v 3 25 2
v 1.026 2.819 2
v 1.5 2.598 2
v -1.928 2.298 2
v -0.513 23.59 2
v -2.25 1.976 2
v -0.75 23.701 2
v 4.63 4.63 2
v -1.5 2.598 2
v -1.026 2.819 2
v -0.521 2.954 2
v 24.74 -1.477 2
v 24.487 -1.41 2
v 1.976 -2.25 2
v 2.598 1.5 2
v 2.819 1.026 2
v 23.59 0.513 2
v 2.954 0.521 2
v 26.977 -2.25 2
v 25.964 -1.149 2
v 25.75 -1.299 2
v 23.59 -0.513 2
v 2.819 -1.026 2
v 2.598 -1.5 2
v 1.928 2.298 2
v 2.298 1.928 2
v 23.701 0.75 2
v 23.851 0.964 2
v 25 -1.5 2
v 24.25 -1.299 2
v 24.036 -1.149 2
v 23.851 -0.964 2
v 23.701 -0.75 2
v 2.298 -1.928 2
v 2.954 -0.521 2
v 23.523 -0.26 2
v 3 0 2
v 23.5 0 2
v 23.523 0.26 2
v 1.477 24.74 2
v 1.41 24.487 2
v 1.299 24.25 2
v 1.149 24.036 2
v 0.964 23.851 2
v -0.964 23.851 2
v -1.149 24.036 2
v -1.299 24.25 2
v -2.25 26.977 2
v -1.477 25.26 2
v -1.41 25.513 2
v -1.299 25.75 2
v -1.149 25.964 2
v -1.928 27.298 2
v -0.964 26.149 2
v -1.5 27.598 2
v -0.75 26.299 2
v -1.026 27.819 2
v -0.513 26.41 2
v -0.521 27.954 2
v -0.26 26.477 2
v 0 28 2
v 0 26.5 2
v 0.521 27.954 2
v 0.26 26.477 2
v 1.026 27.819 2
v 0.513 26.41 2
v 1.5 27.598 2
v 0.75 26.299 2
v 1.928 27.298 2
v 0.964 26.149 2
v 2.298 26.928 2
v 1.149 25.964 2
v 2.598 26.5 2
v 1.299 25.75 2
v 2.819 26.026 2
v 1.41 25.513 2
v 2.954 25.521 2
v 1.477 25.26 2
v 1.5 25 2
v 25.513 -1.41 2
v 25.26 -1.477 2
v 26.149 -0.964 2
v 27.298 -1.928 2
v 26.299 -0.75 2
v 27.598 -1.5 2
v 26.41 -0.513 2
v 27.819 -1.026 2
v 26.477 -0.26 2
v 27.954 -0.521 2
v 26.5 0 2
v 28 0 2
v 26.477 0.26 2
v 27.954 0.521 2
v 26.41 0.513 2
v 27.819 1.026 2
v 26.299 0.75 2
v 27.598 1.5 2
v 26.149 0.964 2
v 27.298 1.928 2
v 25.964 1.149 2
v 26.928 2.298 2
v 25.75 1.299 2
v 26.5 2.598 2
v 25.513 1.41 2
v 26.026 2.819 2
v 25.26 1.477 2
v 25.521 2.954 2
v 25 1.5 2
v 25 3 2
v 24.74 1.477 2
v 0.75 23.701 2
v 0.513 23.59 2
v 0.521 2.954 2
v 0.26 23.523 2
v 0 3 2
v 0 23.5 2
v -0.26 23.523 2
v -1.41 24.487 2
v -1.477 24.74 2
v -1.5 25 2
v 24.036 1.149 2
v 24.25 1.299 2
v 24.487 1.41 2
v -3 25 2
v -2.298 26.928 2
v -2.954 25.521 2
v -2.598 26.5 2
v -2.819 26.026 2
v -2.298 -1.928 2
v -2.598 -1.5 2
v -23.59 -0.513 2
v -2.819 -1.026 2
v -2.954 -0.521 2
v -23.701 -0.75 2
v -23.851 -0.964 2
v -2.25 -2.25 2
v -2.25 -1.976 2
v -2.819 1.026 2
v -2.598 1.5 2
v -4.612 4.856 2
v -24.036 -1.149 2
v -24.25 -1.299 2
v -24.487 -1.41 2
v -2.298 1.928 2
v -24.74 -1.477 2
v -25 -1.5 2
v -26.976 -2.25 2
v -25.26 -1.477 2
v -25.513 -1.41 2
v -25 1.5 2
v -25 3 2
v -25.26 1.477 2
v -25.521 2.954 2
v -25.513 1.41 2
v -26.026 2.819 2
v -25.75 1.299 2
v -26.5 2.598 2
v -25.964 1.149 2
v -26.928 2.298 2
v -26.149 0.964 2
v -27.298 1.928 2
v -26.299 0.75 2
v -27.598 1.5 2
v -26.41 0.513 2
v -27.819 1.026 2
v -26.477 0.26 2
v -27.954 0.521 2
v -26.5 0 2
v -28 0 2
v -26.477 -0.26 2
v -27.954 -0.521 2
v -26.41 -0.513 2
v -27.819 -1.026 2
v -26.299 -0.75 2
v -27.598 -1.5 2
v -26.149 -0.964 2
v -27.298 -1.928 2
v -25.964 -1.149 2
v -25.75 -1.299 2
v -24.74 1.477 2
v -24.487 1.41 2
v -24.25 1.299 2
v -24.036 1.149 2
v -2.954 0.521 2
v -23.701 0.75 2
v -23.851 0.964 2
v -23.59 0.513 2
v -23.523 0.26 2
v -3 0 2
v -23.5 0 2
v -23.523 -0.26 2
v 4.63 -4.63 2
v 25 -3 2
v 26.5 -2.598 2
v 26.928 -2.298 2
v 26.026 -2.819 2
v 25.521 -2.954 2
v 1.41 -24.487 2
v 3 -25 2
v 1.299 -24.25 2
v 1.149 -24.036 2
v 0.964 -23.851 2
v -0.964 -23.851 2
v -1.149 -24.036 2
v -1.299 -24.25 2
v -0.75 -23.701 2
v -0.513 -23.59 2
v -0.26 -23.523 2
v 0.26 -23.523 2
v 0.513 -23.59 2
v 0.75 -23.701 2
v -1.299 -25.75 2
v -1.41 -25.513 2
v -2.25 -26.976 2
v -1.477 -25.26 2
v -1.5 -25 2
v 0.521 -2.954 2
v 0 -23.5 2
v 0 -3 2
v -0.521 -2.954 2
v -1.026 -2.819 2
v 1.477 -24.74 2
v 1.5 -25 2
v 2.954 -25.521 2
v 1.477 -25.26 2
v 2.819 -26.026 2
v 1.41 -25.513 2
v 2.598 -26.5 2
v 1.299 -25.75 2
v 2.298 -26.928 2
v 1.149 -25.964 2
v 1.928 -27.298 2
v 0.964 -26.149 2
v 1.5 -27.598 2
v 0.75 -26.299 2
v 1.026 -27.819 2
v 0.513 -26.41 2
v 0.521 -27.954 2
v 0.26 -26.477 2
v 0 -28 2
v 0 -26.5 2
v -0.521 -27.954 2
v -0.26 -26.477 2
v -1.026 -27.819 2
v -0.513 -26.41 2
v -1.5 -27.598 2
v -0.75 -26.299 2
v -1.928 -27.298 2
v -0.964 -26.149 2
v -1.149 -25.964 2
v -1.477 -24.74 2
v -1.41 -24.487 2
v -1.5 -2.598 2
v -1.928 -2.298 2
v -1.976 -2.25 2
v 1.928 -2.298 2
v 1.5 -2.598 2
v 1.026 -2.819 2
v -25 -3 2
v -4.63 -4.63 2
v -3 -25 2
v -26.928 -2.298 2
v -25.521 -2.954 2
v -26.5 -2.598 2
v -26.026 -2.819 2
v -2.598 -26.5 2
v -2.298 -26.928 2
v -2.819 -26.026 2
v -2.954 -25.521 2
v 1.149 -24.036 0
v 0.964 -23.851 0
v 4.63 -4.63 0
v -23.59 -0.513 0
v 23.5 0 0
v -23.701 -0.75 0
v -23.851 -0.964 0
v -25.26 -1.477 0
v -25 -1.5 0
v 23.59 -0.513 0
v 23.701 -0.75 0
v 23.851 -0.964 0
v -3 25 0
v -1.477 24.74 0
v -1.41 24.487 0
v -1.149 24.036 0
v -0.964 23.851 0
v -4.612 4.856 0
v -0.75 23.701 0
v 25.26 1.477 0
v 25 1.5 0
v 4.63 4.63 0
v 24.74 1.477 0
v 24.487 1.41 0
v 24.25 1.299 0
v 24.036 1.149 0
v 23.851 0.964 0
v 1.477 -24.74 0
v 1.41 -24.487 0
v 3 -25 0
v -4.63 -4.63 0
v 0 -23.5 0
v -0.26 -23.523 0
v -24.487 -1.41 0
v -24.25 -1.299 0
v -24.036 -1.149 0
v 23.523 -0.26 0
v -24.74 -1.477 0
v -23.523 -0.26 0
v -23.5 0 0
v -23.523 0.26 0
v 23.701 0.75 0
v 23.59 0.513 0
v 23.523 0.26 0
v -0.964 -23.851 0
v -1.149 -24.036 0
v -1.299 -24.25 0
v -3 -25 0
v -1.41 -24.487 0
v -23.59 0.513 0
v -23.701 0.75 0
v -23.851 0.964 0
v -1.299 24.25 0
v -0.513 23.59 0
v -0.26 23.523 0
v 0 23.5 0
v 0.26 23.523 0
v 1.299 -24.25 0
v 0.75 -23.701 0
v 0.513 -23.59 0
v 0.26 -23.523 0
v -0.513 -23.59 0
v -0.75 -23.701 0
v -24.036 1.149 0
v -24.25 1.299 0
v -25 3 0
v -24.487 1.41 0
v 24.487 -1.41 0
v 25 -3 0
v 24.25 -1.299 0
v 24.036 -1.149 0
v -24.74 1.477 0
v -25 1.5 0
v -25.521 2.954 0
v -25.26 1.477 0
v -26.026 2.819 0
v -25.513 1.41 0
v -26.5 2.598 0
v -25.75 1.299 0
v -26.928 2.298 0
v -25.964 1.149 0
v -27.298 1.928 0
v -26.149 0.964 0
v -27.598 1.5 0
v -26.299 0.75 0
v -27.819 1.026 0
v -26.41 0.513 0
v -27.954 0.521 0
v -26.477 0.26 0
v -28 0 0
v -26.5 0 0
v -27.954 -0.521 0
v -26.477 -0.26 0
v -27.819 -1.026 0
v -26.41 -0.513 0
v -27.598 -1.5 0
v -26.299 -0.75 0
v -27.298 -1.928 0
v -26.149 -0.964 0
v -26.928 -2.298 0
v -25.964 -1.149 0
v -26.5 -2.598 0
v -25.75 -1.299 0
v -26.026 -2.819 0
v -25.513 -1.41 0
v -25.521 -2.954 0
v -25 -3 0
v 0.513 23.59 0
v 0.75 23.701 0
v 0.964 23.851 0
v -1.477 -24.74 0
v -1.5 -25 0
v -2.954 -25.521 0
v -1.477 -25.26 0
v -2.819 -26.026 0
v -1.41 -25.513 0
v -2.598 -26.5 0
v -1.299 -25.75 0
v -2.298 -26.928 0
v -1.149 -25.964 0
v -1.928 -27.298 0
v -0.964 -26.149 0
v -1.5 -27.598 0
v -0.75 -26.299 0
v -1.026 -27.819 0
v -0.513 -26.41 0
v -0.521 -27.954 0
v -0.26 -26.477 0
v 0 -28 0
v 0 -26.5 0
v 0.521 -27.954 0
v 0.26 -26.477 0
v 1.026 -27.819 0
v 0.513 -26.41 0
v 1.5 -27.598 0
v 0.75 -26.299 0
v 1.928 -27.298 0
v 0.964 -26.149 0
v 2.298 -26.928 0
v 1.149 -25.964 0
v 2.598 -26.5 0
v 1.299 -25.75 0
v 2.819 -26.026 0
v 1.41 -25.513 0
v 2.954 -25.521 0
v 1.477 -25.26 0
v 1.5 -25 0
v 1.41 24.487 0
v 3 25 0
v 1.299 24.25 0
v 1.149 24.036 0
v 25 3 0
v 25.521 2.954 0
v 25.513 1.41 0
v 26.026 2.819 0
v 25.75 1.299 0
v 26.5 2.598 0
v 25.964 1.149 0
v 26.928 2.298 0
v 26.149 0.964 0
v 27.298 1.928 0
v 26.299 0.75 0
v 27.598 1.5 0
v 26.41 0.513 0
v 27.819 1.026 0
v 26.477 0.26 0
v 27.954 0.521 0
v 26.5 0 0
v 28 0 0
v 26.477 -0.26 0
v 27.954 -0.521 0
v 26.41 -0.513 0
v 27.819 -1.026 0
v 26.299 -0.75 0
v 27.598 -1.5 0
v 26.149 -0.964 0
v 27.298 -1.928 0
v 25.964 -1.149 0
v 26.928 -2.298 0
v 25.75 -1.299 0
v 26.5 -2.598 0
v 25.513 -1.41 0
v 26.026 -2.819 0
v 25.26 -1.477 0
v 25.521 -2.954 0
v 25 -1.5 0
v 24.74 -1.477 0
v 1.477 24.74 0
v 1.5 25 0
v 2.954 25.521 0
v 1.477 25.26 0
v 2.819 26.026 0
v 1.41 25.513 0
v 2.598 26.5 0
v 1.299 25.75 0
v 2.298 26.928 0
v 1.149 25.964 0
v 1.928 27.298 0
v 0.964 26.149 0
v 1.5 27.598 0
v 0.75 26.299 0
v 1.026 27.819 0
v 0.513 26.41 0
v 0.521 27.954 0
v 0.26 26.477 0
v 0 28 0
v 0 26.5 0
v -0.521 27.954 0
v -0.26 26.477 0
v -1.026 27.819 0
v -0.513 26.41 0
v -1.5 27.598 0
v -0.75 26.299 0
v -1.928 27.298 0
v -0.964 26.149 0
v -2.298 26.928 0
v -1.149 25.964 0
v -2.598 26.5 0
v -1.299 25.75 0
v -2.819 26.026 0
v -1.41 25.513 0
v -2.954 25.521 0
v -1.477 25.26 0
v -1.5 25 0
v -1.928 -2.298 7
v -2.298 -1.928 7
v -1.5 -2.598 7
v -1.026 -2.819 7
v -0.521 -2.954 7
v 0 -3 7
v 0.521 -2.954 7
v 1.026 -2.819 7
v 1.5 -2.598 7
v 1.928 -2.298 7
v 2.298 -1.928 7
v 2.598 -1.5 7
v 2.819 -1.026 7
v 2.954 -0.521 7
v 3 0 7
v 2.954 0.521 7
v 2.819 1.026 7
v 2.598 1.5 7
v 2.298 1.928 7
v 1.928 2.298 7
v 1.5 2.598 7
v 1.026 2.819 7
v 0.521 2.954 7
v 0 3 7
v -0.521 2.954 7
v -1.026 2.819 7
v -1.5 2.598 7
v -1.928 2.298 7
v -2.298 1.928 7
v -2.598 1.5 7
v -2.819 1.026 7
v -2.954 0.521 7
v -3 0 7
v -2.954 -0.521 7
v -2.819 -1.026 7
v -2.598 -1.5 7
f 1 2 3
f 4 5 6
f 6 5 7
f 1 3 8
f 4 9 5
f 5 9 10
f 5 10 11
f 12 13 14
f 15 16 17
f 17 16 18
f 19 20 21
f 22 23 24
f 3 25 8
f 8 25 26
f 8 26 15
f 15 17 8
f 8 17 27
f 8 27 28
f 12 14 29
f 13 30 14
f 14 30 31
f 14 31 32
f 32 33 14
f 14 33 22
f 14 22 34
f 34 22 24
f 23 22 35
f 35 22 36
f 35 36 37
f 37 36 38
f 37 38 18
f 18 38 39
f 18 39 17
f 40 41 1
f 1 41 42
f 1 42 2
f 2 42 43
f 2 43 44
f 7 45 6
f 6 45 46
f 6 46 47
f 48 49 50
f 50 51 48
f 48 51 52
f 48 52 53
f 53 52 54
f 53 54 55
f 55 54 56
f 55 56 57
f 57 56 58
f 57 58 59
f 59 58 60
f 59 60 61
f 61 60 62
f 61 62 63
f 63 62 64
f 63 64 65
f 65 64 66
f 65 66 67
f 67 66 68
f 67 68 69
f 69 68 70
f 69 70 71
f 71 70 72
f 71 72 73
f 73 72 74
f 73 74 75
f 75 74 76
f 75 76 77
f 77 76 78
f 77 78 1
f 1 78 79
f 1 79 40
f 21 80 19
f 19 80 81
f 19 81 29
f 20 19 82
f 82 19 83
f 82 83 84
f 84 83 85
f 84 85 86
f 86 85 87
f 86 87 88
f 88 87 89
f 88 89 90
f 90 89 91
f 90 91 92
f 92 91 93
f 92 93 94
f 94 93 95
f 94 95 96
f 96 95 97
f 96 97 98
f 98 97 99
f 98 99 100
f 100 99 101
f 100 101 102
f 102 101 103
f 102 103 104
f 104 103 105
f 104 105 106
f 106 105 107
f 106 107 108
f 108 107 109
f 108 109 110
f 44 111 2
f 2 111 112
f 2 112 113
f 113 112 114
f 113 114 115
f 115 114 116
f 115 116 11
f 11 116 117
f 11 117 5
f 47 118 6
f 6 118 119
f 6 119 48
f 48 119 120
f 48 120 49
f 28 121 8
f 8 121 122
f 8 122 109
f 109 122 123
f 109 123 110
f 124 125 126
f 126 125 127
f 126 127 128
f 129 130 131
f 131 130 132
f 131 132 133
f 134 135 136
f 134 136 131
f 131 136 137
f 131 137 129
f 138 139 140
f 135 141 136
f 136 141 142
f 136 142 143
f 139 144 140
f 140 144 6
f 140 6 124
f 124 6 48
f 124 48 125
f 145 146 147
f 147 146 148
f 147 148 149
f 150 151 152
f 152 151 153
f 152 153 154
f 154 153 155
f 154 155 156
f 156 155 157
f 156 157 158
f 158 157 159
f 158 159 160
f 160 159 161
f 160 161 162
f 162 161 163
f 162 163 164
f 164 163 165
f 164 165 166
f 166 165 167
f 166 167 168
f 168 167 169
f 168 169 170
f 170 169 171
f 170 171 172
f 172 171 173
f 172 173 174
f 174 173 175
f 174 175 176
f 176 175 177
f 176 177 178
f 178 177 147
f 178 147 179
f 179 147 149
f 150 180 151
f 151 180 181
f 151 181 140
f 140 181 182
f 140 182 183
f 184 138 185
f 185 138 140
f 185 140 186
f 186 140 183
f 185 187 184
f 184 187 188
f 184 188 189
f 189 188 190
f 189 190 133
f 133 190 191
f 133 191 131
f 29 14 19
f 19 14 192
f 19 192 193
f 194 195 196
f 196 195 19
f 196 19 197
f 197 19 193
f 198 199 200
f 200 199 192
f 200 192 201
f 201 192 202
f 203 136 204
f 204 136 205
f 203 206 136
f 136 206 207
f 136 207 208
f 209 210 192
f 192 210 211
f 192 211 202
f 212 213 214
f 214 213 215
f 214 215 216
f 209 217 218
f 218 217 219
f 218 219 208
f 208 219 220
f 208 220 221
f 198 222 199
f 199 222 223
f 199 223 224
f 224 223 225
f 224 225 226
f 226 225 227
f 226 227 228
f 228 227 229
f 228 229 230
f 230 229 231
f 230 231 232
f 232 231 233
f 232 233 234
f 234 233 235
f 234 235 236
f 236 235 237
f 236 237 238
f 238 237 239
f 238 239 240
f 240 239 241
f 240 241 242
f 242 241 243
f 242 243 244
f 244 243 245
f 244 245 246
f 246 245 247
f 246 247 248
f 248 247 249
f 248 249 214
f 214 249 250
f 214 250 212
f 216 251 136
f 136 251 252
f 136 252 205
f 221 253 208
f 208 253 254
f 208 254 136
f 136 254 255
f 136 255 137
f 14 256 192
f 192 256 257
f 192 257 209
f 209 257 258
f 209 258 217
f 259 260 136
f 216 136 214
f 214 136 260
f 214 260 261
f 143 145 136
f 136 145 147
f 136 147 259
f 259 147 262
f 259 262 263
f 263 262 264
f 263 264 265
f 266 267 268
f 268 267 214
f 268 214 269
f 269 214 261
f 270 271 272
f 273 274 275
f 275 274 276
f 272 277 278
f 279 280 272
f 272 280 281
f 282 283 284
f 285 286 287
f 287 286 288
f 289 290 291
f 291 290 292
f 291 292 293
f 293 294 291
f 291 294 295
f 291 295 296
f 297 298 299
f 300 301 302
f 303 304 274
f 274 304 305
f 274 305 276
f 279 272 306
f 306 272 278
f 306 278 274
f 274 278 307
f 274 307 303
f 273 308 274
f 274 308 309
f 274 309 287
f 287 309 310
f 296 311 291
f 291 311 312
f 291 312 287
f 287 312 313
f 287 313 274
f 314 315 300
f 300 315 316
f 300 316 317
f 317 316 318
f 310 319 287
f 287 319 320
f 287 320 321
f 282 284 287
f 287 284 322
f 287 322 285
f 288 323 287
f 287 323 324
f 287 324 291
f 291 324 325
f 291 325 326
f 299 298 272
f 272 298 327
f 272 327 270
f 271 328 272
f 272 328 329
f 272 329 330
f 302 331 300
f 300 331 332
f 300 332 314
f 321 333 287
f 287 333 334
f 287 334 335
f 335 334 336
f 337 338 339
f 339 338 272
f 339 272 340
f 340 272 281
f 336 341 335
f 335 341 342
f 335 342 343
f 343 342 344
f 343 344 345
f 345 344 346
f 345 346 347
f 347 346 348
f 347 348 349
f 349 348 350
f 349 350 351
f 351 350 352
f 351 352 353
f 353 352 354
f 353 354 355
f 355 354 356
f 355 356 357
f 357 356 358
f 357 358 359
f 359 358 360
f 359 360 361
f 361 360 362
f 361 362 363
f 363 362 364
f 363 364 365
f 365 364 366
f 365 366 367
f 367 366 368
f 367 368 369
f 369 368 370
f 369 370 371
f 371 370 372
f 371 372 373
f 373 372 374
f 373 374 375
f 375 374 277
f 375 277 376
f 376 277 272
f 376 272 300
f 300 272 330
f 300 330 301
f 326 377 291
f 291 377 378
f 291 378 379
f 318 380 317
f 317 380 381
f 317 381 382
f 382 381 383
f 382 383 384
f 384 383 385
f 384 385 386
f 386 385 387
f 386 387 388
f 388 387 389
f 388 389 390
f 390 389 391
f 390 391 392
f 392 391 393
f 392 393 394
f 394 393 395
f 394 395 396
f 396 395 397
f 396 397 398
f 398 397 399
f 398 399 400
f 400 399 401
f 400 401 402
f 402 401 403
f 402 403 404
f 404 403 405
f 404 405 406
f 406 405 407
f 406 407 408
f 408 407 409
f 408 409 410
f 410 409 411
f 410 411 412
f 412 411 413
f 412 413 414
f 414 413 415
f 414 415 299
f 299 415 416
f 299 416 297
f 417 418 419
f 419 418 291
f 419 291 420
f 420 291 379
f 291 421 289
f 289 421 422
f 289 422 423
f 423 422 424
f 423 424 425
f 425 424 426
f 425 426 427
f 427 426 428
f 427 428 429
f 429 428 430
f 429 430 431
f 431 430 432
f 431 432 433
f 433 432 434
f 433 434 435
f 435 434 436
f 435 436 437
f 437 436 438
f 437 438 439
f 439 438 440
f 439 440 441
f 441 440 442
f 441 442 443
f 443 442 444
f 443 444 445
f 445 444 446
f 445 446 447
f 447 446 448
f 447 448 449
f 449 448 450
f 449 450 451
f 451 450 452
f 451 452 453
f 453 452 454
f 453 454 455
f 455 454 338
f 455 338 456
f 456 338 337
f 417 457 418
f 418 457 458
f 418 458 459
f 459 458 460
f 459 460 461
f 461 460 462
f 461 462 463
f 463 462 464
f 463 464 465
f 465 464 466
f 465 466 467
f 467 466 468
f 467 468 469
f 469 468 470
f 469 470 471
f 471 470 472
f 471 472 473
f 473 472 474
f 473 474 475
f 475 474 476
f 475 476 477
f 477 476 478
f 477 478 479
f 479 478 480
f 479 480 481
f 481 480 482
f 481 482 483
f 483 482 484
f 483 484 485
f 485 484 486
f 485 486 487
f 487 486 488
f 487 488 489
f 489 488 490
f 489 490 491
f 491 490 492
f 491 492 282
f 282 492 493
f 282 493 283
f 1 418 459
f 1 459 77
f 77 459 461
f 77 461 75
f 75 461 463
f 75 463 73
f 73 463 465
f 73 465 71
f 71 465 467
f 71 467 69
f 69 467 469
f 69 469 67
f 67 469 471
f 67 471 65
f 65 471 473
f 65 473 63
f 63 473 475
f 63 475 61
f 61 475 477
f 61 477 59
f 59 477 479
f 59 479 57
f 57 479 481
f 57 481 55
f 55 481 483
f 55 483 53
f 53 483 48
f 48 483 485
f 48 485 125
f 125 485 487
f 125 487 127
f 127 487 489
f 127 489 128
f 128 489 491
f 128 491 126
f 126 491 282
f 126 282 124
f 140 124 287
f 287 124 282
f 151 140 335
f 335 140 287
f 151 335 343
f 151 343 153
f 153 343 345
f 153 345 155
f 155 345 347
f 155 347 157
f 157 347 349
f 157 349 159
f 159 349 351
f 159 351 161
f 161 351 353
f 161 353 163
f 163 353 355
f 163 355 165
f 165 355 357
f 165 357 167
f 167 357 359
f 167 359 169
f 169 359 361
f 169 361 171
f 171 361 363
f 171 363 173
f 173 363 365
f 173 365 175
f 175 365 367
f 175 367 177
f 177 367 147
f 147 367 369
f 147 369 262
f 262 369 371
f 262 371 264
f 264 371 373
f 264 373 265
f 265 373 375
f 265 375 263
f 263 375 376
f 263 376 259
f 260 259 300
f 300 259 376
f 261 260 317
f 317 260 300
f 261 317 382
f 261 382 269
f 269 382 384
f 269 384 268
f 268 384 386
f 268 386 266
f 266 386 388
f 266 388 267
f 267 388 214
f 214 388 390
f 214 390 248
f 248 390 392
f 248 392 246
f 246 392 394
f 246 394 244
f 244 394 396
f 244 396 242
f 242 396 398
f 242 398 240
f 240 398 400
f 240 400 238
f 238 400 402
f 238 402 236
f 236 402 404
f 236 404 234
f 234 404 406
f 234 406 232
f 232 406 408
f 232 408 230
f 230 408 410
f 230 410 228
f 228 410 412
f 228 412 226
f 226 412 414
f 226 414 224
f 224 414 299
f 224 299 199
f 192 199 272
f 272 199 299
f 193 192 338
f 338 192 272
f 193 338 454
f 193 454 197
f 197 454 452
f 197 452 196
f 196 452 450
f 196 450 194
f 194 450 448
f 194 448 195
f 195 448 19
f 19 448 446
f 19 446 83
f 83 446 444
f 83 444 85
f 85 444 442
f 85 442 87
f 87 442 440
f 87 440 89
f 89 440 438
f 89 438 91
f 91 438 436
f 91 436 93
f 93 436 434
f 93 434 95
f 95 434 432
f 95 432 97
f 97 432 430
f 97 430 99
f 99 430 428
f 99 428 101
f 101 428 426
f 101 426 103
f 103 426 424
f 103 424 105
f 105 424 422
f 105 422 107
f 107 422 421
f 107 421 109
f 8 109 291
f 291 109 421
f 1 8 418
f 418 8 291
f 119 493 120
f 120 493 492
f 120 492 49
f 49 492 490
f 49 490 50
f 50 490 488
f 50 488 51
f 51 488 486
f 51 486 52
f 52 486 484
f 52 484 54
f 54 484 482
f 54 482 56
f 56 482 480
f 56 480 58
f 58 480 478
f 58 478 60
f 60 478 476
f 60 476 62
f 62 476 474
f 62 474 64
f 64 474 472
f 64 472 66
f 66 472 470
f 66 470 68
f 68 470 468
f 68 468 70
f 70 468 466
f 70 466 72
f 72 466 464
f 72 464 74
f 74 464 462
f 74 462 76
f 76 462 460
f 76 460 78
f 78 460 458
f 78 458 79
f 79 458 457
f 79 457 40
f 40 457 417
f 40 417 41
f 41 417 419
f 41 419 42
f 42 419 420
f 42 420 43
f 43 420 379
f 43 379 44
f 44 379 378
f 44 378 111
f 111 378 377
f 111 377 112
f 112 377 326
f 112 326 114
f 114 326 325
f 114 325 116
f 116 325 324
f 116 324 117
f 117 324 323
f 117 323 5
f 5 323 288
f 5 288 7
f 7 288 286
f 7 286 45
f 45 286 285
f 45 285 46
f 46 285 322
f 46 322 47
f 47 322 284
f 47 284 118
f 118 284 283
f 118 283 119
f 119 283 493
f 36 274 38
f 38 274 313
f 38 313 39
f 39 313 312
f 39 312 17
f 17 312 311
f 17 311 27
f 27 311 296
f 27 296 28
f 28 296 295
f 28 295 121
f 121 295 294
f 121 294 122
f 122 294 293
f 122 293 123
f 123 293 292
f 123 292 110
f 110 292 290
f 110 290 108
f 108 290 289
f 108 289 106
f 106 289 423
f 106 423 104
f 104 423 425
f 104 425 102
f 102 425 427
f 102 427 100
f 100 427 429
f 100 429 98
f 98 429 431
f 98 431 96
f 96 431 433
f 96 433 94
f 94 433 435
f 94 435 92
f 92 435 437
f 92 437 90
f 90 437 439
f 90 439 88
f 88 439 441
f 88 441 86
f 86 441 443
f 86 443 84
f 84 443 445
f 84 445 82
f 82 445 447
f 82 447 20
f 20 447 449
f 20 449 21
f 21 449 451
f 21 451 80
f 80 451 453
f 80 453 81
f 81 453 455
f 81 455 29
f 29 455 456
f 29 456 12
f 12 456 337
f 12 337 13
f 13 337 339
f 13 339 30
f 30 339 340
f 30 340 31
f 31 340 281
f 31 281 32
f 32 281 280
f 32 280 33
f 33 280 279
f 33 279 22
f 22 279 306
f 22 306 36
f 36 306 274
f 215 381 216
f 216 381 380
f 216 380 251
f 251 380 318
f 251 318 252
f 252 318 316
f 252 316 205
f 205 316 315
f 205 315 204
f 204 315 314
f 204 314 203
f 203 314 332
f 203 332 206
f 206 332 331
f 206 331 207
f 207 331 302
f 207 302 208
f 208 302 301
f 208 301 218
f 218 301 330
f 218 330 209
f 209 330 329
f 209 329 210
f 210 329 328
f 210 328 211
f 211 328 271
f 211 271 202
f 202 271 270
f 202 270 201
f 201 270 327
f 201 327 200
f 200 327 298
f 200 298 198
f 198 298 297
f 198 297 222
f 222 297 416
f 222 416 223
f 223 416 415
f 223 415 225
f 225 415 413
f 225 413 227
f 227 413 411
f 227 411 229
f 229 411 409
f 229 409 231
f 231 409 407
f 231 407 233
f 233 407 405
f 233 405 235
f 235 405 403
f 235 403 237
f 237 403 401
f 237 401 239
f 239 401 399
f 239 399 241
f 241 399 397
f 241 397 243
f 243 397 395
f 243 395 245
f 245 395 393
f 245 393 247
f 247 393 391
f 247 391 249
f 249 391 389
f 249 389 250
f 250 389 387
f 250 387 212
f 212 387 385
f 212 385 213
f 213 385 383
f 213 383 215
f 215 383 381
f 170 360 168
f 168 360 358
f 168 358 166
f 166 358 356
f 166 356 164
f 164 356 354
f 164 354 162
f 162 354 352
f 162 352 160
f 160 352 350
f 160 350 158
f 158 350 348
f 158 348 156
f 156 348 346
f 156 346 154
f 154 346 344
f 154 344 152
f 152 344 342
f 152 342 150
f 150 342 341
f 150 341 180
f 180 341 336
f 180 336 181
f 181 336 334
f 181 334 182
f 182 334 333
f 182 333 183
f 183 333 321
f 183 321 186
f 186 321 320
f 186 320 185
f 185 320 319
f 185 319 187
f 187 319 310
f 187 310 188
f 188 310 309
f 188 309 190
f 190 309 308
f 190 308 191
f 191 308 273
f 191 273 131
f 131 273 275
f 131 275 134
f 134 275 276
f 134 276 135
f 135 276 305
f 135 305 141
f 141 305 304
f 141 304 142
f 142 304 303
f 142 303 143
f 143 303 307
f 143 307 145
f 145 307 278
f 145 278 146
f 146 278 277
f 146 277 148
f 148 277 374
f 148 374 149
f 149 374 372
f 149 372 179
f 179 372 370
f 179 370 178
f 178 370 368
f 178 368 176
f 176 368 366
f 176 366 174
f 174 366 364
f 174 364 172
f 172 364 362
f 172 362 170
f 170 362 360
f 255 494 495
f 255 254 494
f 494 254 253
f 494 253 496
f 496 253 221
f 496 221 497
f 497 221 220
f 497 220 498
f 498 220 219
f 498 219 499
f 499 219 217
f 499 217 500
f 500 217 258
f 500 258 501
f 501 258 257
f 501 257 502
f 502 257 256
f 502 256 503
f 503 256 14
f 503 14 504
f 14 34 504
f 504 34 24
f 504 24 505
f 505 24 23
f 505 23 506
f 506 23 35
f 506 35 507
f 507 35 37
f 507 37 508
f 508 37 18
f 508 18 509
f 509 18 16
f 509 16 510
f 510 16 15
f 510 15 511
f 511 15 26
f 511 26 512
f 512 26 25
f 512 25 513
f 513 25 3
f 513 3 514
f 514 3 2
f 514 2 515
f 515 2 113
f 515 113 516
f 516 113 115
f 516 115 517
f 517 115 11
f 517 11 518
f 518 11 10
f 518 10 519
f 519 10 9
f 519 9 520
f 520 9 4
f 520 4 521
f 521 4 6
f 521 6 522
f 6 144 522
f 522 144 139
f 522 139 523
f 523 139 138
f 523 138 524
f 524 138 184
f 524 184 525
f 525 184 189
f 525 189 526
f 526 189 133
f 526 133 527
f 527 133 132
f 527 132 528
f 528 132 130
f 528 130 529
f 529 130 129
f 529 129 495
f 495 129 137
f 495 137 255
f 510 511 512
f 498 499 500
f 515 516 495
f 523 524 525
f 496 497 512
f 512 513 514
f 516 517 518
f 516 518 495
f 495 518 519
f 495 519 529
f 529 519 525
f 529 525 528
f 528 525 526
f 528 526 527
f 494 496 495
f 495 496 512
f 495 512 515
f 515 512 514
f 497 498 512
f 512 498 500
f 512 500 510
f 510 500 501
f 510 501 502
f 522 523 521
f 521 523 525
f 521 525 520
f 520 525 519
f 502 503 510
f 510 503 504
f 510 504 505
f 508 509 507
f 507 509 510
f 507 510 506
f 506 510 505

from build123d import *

# Parameters (mm, degrees)
SKETCH1_R           = 1.5
BOSS_EXTRUDE1_DEPTH = 2
SKETCH2_R           = 3
BOSS_EXTRUDE2_DEPTH = 5


with BuildPart() as part:
    # Sketch1 → Boss-Extrude1 (new body)
    with BuildSketch(Plane.XY):
        with BuildLine():
            Line((4.62962963, 4.62962963), (25, 3))
            ThreePointArc((25, 3), (28, 0), (25, -3))
            Line((25, -3), (4.62962963, -4.62962963))
            Line((4.62962963, -4.62962963), (3, -25))
            ThreePointArc((3, -25), (0, -28), (-3, -25))
            Line((-3, -25), (-4.62962963, -4.62962963))
            Line((-4.62962963, -4.62962963), (-25, -3))
            ThreePointArc((-25, -3), (-28, 0), (-25, 3))
            Line((-25, 3), (-4.611543086, 4.855711421))
            Line((-4.611543086, 4.855711421), (-3, 25))
            ThreePointArc((-3, 25), (0, 28), (3, 25))
            Line((3, 25), (4.62962963, 4.62962963))
        make_face()
        with Locations((0, 25)):
            Circle(SKETCH1_R, mode=Mode.SUBTRACT)
        with Locations((25, 0)):
            Circle(SKETCH1_R, mode=Mode.SUBTRACT)
        with Locations((0, -25)):
            Circle(SKETCH1_R, mode=Mode.SUBTRACT)
        with Locations((-25, 0)):
            Circle(SKETCH1_R, mode=Mode.SUBTRACT)
    extrude(amount=BOSS_EXTRUDE1_DEPTH)

    # Sketch2 → Boss-Extrude2 (add)
    with BuildSketch(Plane.XY.offset(2)):
        Circle(SKETCH2_R)
    extrude(amount=BOSS_EXTRUDE2_DEPTH)


solid = part.part
